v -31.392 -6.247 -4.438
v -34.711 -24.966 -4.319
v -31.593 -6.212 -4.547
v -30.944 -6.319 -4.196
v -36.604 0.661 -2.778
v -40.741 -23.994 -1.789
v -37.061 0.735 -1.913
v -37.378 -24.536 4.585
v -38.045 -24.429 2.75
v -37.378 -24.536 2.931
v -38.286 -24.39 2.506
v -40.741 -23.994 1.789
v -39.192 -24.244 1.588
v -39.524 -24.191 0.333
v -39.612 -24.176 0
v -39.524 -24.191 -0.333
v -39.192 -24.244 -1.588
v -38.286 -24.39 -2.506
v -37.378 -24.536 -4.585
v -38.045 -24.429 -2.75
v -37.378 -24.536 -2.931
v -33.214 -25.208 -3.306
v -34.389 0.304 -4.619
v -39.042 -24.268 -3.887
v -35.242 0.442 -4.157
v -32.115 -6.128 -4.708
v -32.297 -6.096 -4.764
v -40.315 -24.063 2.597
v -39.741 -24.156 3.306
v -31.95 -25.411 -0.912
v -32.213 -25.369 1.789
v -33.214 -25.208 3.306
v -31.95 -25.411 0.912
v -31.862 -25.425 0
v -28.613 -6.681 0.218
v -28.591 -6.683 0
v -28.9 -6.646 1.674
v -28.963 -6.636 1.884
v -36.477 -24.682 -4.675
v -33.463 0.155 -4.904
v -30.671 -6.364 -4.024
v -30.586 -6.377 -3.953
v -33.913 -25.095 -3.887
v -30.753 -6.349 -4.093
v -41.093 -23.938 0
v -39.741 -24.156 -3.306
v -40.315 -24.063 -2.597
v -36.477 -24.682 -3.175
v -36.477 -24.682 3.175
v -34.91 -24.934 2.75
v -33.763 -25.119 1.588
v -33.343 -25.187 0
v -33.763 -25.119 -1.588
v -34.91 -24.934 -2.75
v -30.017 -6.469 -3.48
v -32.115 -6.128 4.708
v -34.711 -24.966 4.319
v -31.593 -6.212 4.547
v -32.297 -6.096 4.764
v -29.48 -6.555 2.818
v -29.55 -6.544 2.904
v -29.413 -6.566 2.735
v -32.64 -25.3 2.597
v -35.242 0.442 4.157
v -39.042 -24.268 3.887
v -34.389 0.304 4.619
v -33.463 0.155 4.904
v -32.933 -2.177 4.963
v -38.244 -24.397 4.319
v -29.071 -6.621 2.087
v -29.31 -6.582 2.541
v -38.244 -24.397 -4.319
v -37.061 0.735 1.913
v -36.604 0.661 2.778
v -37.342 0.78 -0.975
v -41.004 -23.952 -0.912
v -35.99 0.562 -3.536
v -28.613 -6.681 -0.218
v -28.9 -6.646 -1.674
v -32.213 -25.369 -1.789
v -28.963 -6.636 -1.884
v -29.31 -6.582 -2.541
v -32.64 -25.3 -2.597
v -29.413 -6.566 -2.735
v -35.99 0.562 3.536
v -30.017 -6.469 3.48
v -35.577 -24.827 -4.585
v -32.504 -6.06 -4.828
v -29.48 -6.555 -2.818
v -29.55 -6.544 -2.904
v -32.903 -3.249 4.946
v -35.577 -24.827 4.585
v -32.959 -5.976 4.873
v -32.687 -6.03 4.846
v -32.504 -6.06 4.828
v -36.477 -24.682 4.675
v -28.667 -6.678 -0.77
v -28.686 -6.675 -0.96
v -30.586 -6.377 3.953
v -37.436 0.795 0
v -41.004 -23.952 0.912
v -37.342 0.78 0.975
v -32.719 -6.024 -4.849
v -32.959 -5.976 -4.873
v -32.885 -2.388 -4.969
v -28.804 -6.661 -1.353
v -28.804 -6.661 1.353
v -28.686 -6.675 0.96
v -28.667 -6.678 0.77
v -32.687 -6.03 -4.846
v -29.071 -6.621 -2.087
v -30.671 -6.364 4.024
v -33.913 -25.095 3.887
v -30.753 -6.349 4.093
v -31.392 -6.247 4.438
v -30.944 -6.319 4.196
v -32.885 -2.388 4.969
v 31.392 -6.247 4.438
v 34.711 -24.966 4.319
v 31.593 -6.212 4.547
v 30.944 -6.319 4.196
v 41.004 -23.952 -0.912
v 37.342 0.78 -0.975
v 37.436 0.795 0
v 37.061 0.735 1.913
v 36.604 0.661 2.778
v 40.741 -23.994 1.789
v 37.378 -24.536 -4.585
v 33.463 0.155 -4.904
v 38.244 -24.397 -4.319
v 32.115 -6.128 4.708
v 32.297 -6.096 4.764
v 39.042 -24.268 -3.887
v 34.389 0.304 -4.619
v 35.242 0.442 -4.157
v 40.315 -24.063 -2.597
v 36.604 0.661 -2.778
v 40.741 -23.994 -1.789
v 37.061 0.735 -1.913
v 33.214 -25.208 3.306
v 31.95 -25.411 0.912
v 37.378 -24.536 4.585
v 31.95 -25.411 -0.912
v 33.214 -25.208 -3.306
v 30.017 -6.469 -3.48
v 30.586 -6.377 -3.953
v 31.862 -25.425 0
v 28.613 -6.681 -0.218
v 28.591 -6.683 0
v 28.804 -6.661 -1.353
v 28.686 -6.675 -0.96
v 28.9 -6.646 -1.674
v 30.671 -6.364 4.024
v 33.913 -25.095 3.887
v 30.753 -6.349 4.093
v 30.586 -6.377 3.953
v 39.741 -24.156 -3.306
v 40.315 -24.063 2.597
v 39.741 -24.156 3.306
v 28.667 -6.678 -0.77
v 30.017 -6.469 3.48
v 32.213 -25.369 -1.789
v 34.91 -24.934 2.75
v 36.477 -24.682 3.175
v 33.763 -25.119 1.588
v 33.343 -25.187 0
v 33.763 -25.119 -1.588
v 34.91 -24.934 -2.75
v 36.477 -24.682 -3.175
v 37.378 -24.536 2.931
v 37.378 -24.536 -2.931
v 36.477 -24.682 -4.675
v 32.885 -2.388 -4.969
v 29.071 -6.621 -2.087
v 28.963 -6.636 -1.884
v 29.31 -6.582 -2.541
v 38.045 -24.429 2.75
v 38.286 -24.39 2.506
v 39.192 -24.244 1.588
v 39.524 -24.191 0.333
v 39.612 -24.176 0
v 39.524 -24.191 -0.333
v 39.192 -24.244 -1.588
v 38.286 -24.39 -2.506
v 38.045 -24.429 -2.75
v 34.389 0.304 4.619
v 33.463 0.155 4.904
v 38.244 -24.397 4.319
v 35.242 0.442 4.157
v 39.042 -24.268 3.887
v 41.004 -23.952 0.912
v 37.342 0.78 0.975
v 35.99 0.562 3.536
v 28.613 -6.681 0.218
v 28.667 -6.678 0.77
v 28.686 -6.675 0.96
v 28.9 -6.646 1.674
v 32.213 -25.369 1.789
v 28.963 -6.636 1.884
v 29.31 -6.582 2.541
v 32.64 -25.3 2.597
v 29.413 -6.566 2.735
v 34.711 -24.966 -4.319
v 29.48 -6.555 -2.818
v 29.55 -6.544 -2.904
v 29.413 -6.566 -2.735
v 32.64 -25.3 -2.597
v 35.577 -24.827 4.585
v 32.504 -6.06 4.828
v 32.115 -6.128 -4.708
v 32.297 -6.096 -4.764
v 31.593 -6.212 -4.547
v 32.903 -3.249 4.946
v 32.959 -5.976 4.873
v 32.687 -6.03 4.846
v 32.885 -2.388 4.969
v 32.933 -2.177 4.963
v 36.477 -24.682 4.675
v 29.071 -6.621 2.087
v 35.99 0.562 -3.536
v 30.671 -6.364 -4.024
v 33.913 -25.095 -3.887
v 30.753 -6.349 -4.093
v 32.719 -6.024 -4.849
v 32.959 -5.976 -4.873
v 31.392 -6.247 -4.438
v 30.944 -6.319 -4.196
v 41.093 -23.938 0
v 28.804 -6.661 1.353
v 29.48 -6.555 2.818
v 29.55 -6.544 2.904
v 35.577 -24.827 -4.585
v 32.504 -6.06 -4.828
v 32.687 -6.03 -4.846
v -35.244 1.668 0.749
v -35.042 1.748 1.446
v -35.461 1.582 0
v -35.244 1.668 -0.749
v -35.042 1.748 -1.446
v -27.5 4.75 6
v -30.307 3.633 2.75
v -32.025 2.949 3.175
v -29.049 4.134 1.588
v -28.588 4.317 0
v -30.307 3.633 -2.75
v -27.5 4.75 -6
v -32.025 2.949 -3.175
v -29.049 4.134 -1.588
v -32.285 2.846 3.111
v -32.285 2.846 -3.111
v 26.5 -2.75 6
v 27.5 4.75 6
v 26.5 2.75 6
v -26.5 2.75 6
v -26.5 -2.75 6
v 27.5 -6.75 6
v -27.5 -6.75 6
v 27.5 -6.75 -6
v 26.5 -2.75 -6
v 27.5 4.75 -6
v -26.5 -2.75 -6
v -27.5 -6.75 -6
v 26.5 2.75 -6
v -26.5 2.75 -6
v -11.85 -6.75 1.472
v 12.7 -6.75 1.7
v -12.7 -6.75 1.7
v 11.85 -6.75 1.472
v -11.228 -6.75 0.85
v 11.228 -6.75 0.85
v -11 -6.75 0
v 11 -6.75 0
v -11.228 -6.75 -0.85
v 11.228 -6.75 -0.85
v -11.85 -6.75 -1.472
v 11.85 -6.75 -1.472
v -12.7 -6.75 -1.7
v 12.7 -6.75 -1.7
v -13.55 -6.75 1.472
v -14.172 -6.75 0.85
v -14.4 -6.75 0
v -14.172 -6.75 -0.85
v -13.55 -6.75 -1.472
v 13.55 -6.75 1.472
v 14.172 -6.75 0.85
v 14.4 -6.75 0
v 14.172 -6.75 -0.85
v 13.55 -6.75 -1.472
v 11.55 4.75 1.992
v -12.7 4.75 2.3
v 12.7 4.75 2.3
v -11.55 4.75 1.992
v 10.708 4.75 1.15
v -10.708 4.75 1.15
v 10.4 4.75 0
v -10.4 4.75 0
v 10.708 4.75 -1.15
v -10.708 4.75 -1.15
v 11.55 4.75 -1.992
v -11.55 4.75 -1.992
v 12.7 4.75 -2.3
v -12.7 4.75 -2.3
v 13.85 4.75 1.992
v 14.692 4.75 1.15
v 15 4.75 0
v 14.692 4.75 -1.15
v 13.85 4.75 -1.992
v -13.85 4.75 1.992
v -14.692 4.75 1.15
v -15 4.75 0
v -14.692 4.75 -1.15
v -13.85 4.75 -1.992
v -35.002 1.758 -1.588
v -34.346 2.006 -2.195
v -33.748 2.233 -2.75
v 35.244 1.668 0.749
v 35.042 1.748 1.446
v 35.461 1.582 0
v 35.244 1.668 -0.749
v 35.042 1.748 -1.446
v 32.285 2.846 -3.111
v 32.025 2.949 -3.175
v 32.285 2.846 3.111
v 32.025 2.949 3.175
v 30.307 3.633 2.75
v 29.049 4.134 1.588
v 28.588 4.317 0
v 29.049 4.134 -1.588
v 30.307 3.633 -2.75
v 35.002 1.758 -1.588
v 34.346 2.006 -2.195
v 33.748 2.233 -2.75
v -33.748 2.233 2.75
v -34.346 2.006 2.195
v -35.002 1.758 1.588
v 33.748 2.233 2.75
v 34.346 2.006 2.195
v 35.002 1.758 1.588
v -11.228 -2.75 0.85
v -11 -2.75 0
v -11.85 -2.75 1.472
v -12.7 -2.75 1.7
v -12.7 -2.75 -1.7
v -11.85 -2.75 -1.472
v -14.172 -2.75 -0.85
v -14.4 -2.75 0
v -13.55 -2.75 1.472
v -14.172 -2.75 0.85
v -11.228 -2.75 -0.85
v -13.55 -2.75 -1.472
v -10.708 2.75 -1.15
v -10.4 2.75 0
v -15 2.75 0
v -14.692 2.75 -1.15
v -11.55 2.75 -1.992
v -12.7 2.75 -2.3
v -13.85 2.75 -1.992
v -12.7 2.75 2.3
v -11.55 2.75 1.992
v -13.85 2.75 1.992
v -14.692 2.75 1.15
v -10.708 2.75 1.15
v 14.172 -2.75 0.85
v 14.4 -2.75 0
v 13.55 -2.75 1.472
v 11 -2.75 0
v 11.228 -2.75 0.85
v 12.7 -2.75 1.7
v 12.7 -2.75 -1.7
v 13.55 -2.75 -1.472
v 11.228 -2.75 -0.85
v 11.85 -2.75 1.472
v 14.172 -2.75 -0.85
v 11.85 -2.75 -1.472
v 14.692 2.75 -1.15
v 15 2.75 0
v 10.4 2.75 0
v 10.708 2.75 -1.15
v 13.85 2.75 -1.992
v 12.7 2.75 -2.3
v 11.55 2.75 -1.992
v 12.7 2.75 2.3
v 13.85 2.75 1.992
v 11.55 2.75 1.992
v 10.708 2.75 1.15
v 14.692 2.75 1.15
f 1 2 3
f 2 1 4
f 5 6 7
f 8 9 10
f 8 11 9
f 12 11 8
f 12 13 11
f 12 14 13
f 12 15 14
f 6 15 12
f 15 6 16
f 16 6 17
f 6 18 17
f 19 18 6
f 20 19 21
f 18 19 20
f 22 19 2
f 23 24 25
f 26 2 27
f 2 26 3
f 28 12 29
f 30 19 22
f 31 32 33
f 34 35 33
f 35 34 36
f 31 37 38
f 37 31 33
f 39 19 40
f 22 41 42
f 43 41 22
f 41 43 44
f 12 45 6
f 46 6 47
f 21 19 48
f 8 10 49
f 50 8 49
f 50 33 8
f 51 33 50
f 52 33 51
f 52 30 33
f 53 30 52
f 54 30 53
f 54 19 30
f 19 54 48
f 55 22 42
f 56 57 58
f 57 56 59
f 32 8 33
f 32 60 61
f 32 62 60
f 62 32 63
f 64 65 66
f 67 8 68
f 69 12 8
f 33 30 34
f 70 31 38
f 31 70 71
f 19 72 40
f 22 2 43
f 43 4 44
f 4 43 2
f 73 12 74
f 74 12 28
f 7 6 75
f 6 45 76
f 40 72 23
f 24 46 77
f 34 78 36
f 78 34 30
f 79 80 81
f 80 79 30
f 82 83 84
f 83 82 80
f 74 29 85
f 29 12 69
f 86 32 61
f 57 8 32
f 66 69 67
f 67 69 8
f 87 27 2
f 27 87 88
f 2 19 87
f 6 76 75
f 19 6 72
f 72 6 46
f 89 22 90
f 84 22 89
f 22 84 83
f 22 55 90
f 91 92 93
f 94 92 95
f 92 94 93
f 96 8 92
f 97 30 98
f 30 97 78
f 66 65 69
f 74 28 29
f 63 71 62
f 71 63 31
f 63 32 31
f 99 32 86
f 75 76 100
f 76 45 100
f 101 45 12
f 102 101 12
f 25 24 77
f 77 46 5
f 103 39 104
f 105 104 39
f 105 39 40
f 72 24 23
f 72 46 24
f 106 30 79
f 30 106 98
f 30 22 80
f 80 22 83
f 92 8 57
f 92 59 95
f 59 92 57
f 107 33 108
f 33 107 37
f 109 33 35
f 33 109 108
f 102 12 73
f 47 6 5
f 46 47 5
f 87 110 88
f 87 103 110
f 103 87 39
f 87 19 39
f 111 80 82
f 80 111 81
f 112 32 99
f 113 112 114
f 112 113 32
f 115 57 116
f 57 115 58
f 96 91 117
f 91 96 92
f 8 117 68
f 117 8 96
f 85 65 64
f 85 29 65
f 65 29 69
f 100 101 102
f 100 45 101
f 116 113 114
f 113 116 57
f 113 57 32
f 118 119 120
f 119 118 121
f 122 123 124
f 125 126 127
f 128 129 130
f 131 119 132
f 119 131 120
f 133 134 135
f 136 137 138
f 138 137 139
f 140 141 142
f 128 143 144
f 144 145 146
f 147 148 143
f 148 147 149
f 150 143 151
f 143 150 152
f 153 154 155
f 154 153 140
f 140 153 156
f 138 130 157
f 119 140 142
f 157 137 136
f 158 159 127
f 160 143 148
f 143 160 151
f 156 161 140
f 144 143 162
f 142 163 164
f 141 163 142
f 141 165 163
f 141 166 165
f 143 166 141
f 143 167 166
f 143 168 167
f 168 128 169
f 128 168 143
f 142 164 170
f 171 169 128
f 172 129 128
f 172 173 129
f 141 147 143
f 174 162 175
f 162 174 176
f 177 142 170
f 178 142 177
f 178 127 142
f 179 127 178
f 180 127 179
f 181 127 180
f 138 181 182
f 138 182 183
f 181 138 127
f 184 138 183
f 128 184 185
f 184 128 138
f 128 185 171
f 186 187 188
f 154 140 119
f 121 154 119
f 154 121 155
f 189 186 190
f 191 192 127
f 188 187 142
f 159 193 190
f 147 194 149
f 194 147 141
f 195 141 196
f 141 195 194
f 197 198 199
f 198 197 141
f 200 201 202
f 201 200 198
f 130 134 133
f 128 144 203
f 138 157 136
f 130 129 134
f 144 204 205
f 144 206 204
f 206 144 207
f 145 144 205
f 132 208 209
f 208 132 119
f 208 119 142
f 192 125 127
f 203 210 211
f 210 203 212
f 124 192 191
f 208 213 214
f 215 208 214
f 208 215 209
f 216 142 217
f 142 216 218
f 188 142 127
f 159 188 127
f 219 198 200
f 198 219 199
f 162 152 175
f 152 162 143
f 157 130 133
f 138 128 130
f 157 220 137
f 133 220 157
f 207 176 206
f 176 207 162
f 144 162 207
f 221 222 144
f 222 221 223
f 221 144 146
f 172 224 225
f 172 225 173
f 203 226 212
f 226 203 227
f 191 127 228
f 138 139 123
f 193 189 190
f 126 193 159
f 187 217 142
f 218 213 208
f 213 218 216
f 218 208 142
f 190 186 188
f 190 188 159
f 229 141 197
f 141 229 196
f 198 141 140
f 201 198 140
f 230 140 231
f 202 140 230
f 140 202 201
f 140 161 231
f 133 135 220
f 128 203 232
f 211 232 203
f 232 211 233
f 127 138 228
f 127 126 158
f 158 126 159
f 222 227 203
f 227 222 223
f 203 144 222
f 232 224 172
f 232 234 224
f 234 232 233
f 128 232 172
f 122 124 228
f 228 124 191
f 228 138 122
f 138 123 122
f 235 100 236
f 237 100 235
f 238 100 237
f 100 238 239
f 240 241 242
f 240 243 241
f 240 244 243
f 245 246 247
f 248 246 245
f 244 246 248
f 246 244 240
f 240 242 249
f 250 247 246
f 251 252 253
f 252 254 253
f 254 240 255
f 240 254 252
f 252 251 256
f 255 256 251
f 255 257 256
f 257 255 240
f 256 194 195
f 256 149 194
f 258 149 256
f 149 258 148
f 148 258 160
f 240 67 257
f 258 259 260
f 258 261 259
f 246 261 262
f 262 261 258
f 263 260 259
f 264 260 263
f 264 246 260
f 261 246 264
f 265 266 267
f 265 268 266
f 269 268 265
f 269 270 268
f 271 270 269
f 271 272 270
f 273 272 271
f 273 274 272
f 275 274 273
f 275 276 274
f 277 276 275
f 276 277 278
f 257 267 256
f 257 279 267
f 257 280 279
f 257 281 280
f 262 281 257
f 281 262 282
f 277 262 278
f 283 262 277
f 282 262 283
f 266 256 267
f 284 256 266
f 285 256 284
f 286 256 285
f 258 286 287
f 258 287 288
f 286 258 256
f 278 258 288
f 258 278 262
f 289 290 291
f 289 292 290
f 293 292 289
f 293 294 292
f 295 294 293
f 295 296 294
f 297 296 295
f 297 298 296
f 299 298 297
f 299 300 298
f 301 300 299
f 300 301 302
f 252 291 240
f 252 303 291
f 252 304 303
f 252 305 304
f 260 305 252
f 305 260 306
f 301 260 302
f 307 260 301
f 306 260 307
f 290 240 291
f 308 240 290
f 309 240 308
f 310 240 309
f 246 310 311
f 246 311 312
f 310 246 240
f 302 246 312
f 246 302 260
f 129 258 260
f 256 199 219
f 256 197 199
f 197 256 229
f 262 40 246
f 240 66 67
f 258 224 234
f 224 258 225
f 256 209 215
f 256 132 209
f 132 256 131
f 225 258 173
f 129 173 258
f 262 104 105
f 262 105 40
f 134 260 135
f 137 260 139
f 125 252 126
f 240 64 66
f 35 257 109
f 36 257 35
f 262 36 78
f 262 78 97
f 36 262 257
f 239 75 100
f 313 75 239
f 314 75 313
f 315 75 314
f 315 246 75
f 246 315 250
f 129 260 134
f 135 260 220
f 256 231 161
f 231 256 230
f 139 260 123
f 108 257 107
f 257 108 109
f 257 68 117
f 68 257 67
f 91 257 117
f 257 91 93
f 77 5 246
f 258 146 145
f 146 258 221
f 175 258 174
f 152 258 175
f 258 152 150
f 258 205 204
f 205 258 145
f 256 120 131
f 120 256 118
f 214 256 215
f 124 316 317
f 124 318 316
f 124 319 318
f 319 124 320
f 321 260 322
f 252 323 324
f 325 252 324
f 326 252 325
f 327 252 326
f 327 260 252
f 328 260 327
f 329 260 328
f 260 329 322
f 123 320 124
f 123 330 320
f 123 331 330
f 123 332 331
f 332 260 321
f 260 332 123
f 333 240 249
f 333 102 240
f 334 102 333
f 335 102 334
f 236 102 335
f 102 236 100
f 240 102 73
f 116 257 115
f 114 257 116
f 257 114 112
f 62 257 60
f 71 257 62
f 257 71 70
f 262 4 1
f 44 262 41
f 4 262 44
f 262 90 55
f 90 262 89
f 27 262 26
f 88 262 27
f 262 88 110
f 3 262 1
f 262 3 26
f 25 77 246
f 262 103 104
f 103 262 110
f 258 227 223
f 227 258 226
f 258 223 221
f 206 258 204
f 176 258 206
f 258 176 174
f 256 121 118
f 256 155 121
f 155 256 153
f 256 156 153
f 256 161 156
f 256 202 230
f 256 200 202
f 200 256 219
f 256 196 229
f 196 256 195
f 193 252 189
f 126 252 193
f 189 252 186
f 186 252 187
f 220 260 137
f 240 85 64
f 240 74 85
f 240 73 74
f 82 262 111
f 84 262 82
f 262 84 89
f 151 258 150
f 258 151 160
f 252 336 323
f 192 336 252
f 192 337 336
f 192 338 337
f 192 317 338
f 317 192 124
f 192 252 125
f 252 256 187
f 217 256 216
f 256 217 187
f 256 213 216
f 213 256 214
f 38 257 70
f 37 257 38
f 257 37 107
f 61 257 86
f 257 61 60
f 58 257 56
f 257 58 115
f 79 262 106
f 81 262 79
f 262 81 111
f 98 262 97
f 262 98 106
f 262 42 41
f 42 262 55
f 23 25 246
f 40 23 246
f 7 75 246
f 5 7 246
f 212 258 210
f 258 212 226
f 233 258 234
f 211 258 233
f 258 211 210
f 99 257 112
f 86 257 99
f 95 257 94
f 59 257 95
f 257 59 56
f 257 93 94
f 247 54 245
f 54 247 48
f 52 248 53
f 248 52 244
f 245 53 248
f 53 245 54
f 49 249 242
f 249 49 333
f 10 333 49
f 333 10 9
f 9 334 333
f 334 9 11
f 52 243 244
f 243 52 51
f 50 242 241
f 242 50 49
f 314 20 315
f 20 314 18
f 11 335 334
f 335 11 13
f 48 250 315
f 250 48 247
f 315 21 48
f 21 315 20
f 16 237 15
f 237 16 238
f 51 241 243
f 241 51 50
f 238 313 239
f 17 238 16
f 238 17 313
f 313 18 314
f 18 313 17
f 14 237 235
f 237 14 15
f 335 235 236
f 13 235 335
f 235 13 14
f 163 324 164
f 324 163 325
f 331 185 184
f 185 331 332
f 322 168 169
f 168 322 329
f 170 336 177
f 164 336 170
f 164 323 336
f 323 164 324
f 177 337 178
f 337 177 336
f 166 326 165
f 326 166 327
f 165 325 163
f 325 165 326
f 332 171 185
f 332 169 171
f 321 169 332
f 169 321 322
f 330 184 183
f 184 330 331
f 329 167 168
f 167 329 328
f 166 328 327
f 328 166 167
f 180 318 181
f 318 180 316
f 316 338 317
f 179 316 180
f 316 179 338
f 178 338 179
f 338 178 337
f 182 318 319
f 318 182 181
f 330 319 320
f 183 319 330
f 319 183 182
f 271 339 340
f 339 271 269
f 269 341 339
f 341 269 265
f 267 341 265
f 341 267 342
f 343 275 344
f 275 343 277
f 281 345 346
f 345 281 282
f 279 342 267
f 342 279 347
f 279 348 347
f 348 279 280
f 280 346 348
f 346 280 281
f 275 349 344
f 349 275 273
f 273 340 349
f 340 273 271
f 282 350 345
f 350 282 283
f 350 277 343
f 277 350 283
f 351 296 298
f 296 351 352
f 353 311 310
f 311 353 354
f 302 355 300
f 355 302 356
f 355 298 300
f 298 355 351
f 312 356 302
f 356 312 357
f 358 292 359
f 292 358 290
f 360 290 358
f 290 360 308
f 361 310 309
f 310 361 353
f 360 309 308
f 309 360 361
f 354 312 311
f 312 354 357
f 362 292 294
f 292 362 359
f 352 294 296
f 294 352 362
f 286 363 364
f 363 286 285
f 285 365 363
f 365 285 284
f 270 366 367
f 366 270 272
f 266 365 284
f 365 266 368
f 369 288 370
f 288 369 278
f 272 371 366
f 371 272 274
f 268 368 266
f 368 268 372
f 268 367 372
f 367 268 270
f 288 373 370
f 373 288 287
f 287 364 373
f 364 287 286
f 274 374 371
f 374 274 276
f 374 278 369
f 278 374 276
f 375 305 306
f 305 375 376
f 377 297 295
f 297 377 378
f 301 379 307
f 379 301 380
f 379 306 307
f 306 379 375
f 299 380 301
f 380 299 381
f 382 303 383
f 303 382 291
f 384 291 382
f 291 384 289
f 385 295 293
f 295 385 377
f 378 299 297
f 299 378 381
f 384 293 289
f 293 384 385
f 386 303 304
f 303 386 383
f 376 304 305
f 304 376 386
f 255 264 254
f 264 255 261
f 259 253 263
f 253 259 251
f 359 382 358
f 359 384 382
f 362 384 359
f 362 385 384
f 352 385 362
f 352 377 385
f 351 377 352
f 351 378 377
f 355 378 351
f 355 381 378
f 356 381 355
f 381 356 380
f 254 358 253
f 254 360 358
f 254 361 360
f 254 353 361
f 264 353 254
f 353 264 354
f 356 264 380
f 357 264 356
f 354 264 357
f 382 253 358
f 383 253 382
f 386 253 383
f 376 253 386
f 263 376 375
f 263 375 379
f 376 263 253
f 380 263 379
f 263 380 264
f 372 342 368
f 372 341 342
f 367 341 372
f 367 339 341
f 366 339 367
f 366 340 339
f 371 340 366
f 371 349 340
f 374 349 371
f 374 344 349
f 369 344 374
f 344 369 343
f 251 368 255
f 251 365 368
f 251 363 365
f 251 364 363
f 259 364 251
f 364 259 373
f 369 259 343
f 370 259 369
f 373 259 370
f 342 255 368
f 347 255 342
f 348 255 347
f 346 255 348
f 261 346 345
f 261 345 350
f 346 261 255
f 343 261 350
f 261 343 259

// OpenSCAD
// file: friction fender stay attachment thru.scad
stayAngle = asin(0.5*(165 - 60)/330); // rear
//stayAngle = 0; // front*/
$fs = 1;
$fa = 6;

len = 25;
wid = 10;
//stayD = 4.7;
stayD = 25.4/4;
offset = -tan(stayAngle) * len;
smoffset = sin(stayAngle) * wid;
module squaredCircle(len, rot=[0,0,0], $fn=12) {
    hull() {
        rotate(rot) cylinder(d=wid/cos(180/$fn), h=len, center=false, $fn=$fn);
    }
}
module stayThru(l = len + 5, center=false, stayAngle = stayAngle) {
    translate([0,2.5,0]) rotate([stayAngle,0,0]) translate([0, 0, -4]) cylinder(d=stayD, h=l, center=center, $fn=12);
}
module shank(len, stayAngle = stayAngle) {
    translate([0,2.5,0]) rotate([stayAngle,0,0]) {
        rotate([0,0,180/8]) cylinder(d1=wid, d2=(stayD + 3), h=len, center=false);

    }
}

rotate([90 - stayAngle/2,0,0])
    difference() {
        union() {
            shank(len);

            translate([0,2,-2]) {
                difference() {
                    hull() {
                        translate([0,-2,2]) shank(10);
                        translate([0,-wid/4,-wid/2]) rotate([90,0,0]) cylinder(d=wid+4, h=wid/2, center=true);
                    }
                    translate([0,-wid/4,-wid/2]) rotate([90,0,0]) {
                        cylinder(d=6, h=25, center=true);
                        rotate([0,180,0]) cylinder(d=11, h=wid, center=false);
                    }
                }
            }
        }
        stayThru();
    }
// main file
use <friction fender stay attachment thru.scad>
$fs = 1;
$fa = 6;

fenderWidth = 53;
fenderThick = 5.5;
stayD = 25.4/4;
stayAngle = asin(0.5*(165 - 60)/330); // rear
// stayAngle = 0; // front
module fenderStay(dir=1) {
    #translate([0,8,0]) {
        rotate([90,0,stayAngle*dir]) cylinder(d=5, h=13*25.4, center=false);
    }
}
module rotStay(ii) {
    rotate([90, ii * -90]) children();
}
module stay(len = 25, ii = 1) {
    moveToStay(ii) shank(len, stayAngle = stayAngle);
}
module moveToStay(ii) {
    translate([ii*(fenderWidth/2+8.5),0,0]) rotStay(ii) children();
}

rotate([0,0,0]) difference() {
    union() {
        hull() {
            translate([0, -1]) cube([fenderWidth+2, fenderThick+6, 12], center=true);
            for (ii=[-1:2:1]) {
                stay(ii = ii, len = 6);
            }
        }
        for (ii=[-1:2:1]) {
            stay(ii = ii);
        }
    }
    for (ii=[-1:2:1]) {
        moveToStay(ii) stayThru(l=100, center=true, stayAngle = stayAngle);
    }

    // fender
    cube([fenderWidth, fenderThick, 25], center=true);
    // screws
    for (xx=[-12.7:25.4:12.7]) {
        translate([xx,fenderThick/2 + 2.1,0]) rotate([-90,0,0]) cylinder(d=9.8, h=6, center=false);
        translate([xx, 0, 0]) {
            rotate([90,0,0]) cylinder(d=3.4, h=25, center=false, $fn=12);
            rotate([-90,0,0]) cylinder(d=4.6, h=25, center=false, $fn=12);
        }
    }
    #translate([0,-32,0]) cylinder(d=42, h=10, center=true);
}
offset=12;
